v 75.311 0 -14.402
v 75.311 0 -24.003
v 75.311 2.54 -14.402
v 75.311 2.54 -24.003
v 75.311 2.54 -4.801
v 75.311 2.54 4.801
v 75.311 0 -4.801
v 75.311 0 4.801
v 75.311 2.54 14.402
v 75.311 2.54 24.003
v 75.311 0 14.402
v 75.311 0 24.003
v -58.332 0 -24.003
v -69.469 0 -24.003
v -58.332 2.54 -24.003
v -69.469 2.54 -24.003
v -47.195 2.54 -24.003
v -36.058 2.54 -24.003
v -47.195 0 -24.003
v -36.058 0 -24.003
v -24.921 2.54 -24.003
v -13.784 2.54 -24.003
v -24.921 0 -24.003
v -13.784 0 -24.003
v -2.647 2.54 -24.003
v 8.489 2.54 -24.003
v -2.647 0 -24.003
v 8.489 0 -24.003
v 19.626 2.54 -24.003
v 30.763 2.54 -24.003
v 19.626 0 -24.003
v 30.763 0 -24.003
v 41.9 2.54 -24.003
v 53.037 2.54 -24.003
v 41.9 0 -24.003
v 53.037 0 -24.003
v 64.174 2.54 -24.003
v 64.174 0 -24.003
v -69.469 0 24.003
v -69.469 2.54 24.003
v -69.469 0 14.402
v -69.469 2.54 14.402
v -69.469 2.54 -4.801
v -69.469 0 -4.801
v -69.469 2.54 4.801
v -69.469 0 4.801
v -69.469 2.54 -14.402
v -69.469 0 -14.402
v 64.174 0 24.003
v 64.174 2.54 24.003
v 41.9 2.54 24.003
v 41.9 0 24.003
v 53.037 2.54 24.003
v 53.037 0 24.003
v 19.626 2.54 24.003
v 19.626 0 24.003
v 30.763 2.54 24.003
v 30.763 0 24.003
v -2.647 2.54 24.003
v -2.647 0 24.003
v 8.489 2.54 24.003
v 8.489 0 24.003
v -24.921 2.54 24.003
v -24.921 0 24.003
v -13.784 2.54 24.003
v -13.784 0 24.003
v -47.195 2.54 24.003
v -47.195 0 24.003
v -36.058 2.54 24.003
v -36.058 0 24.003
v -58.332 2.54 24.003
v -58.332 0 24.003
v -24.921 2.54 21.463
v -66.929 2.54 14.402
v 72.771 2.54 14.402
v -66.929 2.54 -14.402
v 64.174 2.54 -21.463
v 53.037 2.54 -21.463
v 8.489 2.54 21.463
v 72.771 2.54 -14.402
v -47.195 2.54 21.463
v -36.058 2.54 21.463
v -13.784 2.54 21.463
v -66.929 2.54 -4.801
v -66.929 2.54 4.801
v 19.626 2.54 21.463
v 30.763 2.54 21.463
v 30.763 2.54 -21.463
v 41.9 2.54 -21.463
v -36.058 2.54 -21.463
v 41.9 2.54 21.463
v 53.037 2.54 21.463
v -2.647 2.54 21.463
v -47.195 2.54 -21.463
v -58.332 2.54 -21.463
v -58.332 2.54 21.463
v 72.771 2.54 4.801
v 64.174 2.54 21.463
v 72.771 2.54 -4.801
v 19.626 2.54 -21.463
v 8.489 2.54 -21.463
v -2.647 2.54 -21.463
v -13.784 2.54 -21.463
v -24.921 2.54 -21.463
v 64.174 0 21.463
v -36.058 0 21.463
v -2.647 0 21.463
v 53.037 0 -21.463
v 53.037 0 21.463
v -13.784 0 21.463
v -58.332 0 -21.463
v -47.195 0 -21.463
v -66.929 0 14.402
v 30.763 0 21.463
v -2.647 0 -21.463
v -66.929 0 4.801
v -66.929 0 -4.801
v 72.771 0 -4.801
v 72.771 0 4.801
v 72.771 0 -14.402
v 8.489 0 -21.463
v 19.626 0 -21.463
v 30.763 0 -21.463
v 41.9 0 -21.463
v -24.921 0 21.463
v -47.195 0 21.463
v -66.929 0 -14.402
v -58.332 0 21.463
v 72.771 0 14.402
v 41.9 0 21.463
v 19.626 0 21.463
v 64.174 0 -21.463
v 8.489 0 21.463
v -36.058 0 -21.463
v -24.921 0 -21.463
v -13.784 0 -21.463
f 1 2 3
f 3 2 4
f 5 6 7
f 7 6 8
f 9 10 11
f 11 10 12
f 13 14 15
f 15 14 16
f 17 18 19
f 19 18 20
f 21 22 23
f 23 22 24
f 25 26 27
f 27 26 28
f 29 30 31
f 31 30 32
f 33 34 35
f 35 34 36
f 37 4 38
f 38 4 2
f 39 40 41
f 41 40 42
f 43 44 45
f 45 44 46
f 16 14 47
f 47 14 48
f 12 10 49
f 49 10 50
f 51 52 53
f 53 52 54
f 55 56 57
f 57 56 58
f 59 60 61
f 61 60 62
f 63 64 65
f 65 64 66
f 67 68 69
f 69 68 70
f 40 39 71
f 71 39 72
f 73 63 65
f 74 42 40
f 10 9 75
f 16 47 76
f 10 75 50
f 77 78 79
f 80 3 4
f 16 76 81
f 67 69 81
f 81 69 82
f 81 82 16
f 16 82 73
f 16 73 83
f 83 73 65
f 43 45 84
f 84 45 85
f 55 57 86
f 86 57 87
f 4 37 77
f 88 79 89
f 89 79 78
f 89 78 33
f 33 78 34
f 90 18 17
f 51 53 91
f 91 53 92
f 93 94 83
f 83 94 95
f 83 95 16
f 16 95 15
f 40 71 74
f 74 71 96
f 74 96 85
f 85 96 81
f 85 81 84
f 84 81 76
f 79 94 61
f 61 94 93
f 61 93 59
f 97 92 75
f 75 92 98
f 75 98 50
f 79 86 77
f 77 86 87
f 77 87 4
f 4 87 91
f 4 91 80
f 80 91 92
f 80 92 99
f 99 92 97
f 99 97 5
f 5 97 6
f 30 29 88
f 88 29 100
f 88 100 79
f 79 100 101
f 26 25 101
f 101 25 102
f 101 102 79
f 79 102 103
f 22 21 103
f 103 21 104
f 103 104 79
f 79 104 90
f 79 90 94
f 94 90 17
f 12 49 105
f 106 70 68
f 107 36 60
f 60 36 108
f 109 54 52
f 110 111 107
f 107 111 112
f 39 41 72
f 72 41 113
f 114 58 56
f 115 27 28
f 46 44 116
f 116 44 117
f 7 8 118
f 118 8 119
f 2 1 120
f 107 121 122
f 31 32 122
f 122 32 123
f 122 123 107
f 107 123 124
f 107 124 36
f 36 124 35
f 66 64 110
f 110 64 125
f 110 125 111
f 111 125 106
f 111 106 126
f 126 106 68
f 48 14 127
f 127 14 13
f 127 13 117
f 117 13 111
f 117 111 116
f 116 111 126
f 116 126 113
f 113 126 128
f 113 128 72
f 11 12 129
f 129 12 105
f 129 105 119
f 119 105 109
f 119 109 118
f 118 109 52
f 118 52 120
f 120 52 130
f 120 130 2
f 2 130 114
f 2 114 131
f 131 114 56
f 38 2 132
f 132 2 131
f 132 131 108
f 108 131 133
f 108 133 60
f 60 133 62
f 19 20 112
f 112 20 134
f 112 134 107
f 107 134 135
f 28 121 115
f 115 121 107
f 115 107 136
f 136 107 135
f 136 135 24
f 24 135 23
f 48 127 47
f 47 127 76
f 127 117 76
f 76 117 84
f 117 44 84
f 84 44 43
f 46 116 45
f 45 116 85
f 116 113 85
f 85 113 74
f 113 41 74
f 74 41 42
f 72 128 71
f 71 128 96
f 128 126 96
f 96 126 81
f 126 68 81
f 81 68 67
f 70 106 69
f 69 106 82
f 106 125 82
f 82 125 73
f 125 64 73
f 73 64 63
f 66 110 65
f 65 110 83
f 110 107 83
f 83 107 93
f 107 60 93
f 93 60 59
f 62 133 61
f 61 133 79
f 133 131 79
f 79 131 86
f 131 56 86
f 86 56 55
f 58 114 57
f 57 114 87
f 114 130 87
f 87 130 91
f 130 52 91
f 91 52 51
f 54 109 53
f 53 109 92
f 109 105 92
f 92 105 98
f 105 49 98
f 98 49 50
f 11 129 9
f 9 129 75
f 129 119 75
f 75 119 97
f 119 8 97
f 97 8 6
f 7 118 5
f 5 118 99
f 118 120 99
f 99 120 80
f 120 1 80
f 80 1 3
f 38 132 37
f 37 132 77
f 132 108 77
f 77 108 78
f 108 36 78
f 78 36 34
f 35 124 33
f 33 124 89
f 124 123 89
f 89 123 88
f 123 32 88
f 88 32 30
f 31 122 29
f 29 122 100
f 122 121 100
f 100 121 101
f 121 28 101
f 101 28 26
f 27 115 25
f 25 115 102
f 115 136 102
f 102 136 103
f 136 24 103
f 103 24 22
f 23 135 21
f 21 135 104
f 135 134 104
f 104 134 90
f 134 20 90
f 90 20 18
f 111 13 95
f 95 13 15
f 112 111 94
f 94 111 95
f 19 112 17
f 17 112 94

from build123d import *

# Parameters (mm, degrees)
SKETCH1_W           = 144.78
SKETCH1_H           = 48.006
BOSS_EXTRUDE1_DEPTH = 2.54
SKETCH2_OUTSIDE_W   = 177.29
SKETCH2_OUTSIDE_H   = 80.516
CUT_EXTRUDE1_DEPTH  = 2.54


with BuildPart() as part:
    # Sketch1 → Boss-Extrude1 (new body)
    with BuildSketch(Plane(origin=(0, 0, 0), x_dir=(1, 0, 0), z_dir=(0, 1, 0))):
        with Locations((2.921, 0)):
            Rectangle(SKETCH1_W, SKETCH1_H)
    extrude(amount=BOSS_EXTRUDE1_DEPTH)

    # Sketch2 outside → Cut-Extrude1 (cut)
    with BuildSketch(Plane(origin=(0, 2.54, 0), x_dir=(1, 0, 0), z_dir=(0, 1, 0))):
        with Locations((2.921, 0)):
            Rectangle(SKETCH2_OUTSIDE_W, SKETCH2_OUTSIDE_H)
        Polygon((-69.469, 24.003), (-69.469, 14.4018), (-66.929, 14.4018), (-66.929, 4.8006), (-69.469, 4.8006), (-69.469, -4.8006), (-66.929, -4.8006), (-66.929, -14.4018), (-69.469, -14.4018), (-69.469, -24.003), (-58.332076923, -24.003), (-58.332076923, -21.463), (-47.195153846, -21.463), (-47.195153846, -24.003), (-36.058230769, -24.003), (-36.058230769, -21.463), (-24.921307692, -21.463), (-24.921307692, -24.003), (-13.784384615, -24.003), (-13.784384615, -21.463), (-2.647461538, -21.463), (-2.647461538, -24.003), (8.489461538, -24.003), (8.489461538, -21.463), (19.626384615, -21.463), (19.626384615, -24.003), (30.763307692, -24.003), (30.763307692, -21.463), (41.900230769, -21.463), (41.900230769, -24.003), (53.037153846, -24.003), (53.037153846, -21.463), (64.174076923, -21.463), (64.174076923, -24.003), (75.311, -24.003), (75.311, -14.4018), (72.771, -14.4018), (72.771, -4.8006), (75.311, -4.8006), (75.311, 4.8006), (72.771, 4.8006), (72.771, 14.4018), (75.311, 14.4018), (75.311, 24.003), (64.174076923, 24.003), (64.174076923, 21.463), (53.037153846, 21.463), (53.037153846, 24.003), (41.900230769, 24.003), (41.900230769, 21.463), (30.763307692, 21.463), (30.763307692, 24.003), (19.626384615, 24.003), (19.626384615, 21.463), (8.489461538, 21.463), (8.489461538, 24.003), (-2.647461538, 24.003), (-2.647461538, 21.463), (-13.784384615, 21.463), (-13.784384615, 24.003), (-24.921307692, 24.003), (-24.921307692, 21.463), (-36.058230769, 21.463), (-36.058230769, 24.003), (-47.195153846, 24.003), (-47.195153846, 21.463), (-58.332076923, 21.463), (-58.332076923, 24.003), align=None, mode=Mode.SUBTRACT)
    extrude(amount=-CUT_EXTRUDE1_DEPTH, mode=Mode.SUBTRACT)


solid = part.part
